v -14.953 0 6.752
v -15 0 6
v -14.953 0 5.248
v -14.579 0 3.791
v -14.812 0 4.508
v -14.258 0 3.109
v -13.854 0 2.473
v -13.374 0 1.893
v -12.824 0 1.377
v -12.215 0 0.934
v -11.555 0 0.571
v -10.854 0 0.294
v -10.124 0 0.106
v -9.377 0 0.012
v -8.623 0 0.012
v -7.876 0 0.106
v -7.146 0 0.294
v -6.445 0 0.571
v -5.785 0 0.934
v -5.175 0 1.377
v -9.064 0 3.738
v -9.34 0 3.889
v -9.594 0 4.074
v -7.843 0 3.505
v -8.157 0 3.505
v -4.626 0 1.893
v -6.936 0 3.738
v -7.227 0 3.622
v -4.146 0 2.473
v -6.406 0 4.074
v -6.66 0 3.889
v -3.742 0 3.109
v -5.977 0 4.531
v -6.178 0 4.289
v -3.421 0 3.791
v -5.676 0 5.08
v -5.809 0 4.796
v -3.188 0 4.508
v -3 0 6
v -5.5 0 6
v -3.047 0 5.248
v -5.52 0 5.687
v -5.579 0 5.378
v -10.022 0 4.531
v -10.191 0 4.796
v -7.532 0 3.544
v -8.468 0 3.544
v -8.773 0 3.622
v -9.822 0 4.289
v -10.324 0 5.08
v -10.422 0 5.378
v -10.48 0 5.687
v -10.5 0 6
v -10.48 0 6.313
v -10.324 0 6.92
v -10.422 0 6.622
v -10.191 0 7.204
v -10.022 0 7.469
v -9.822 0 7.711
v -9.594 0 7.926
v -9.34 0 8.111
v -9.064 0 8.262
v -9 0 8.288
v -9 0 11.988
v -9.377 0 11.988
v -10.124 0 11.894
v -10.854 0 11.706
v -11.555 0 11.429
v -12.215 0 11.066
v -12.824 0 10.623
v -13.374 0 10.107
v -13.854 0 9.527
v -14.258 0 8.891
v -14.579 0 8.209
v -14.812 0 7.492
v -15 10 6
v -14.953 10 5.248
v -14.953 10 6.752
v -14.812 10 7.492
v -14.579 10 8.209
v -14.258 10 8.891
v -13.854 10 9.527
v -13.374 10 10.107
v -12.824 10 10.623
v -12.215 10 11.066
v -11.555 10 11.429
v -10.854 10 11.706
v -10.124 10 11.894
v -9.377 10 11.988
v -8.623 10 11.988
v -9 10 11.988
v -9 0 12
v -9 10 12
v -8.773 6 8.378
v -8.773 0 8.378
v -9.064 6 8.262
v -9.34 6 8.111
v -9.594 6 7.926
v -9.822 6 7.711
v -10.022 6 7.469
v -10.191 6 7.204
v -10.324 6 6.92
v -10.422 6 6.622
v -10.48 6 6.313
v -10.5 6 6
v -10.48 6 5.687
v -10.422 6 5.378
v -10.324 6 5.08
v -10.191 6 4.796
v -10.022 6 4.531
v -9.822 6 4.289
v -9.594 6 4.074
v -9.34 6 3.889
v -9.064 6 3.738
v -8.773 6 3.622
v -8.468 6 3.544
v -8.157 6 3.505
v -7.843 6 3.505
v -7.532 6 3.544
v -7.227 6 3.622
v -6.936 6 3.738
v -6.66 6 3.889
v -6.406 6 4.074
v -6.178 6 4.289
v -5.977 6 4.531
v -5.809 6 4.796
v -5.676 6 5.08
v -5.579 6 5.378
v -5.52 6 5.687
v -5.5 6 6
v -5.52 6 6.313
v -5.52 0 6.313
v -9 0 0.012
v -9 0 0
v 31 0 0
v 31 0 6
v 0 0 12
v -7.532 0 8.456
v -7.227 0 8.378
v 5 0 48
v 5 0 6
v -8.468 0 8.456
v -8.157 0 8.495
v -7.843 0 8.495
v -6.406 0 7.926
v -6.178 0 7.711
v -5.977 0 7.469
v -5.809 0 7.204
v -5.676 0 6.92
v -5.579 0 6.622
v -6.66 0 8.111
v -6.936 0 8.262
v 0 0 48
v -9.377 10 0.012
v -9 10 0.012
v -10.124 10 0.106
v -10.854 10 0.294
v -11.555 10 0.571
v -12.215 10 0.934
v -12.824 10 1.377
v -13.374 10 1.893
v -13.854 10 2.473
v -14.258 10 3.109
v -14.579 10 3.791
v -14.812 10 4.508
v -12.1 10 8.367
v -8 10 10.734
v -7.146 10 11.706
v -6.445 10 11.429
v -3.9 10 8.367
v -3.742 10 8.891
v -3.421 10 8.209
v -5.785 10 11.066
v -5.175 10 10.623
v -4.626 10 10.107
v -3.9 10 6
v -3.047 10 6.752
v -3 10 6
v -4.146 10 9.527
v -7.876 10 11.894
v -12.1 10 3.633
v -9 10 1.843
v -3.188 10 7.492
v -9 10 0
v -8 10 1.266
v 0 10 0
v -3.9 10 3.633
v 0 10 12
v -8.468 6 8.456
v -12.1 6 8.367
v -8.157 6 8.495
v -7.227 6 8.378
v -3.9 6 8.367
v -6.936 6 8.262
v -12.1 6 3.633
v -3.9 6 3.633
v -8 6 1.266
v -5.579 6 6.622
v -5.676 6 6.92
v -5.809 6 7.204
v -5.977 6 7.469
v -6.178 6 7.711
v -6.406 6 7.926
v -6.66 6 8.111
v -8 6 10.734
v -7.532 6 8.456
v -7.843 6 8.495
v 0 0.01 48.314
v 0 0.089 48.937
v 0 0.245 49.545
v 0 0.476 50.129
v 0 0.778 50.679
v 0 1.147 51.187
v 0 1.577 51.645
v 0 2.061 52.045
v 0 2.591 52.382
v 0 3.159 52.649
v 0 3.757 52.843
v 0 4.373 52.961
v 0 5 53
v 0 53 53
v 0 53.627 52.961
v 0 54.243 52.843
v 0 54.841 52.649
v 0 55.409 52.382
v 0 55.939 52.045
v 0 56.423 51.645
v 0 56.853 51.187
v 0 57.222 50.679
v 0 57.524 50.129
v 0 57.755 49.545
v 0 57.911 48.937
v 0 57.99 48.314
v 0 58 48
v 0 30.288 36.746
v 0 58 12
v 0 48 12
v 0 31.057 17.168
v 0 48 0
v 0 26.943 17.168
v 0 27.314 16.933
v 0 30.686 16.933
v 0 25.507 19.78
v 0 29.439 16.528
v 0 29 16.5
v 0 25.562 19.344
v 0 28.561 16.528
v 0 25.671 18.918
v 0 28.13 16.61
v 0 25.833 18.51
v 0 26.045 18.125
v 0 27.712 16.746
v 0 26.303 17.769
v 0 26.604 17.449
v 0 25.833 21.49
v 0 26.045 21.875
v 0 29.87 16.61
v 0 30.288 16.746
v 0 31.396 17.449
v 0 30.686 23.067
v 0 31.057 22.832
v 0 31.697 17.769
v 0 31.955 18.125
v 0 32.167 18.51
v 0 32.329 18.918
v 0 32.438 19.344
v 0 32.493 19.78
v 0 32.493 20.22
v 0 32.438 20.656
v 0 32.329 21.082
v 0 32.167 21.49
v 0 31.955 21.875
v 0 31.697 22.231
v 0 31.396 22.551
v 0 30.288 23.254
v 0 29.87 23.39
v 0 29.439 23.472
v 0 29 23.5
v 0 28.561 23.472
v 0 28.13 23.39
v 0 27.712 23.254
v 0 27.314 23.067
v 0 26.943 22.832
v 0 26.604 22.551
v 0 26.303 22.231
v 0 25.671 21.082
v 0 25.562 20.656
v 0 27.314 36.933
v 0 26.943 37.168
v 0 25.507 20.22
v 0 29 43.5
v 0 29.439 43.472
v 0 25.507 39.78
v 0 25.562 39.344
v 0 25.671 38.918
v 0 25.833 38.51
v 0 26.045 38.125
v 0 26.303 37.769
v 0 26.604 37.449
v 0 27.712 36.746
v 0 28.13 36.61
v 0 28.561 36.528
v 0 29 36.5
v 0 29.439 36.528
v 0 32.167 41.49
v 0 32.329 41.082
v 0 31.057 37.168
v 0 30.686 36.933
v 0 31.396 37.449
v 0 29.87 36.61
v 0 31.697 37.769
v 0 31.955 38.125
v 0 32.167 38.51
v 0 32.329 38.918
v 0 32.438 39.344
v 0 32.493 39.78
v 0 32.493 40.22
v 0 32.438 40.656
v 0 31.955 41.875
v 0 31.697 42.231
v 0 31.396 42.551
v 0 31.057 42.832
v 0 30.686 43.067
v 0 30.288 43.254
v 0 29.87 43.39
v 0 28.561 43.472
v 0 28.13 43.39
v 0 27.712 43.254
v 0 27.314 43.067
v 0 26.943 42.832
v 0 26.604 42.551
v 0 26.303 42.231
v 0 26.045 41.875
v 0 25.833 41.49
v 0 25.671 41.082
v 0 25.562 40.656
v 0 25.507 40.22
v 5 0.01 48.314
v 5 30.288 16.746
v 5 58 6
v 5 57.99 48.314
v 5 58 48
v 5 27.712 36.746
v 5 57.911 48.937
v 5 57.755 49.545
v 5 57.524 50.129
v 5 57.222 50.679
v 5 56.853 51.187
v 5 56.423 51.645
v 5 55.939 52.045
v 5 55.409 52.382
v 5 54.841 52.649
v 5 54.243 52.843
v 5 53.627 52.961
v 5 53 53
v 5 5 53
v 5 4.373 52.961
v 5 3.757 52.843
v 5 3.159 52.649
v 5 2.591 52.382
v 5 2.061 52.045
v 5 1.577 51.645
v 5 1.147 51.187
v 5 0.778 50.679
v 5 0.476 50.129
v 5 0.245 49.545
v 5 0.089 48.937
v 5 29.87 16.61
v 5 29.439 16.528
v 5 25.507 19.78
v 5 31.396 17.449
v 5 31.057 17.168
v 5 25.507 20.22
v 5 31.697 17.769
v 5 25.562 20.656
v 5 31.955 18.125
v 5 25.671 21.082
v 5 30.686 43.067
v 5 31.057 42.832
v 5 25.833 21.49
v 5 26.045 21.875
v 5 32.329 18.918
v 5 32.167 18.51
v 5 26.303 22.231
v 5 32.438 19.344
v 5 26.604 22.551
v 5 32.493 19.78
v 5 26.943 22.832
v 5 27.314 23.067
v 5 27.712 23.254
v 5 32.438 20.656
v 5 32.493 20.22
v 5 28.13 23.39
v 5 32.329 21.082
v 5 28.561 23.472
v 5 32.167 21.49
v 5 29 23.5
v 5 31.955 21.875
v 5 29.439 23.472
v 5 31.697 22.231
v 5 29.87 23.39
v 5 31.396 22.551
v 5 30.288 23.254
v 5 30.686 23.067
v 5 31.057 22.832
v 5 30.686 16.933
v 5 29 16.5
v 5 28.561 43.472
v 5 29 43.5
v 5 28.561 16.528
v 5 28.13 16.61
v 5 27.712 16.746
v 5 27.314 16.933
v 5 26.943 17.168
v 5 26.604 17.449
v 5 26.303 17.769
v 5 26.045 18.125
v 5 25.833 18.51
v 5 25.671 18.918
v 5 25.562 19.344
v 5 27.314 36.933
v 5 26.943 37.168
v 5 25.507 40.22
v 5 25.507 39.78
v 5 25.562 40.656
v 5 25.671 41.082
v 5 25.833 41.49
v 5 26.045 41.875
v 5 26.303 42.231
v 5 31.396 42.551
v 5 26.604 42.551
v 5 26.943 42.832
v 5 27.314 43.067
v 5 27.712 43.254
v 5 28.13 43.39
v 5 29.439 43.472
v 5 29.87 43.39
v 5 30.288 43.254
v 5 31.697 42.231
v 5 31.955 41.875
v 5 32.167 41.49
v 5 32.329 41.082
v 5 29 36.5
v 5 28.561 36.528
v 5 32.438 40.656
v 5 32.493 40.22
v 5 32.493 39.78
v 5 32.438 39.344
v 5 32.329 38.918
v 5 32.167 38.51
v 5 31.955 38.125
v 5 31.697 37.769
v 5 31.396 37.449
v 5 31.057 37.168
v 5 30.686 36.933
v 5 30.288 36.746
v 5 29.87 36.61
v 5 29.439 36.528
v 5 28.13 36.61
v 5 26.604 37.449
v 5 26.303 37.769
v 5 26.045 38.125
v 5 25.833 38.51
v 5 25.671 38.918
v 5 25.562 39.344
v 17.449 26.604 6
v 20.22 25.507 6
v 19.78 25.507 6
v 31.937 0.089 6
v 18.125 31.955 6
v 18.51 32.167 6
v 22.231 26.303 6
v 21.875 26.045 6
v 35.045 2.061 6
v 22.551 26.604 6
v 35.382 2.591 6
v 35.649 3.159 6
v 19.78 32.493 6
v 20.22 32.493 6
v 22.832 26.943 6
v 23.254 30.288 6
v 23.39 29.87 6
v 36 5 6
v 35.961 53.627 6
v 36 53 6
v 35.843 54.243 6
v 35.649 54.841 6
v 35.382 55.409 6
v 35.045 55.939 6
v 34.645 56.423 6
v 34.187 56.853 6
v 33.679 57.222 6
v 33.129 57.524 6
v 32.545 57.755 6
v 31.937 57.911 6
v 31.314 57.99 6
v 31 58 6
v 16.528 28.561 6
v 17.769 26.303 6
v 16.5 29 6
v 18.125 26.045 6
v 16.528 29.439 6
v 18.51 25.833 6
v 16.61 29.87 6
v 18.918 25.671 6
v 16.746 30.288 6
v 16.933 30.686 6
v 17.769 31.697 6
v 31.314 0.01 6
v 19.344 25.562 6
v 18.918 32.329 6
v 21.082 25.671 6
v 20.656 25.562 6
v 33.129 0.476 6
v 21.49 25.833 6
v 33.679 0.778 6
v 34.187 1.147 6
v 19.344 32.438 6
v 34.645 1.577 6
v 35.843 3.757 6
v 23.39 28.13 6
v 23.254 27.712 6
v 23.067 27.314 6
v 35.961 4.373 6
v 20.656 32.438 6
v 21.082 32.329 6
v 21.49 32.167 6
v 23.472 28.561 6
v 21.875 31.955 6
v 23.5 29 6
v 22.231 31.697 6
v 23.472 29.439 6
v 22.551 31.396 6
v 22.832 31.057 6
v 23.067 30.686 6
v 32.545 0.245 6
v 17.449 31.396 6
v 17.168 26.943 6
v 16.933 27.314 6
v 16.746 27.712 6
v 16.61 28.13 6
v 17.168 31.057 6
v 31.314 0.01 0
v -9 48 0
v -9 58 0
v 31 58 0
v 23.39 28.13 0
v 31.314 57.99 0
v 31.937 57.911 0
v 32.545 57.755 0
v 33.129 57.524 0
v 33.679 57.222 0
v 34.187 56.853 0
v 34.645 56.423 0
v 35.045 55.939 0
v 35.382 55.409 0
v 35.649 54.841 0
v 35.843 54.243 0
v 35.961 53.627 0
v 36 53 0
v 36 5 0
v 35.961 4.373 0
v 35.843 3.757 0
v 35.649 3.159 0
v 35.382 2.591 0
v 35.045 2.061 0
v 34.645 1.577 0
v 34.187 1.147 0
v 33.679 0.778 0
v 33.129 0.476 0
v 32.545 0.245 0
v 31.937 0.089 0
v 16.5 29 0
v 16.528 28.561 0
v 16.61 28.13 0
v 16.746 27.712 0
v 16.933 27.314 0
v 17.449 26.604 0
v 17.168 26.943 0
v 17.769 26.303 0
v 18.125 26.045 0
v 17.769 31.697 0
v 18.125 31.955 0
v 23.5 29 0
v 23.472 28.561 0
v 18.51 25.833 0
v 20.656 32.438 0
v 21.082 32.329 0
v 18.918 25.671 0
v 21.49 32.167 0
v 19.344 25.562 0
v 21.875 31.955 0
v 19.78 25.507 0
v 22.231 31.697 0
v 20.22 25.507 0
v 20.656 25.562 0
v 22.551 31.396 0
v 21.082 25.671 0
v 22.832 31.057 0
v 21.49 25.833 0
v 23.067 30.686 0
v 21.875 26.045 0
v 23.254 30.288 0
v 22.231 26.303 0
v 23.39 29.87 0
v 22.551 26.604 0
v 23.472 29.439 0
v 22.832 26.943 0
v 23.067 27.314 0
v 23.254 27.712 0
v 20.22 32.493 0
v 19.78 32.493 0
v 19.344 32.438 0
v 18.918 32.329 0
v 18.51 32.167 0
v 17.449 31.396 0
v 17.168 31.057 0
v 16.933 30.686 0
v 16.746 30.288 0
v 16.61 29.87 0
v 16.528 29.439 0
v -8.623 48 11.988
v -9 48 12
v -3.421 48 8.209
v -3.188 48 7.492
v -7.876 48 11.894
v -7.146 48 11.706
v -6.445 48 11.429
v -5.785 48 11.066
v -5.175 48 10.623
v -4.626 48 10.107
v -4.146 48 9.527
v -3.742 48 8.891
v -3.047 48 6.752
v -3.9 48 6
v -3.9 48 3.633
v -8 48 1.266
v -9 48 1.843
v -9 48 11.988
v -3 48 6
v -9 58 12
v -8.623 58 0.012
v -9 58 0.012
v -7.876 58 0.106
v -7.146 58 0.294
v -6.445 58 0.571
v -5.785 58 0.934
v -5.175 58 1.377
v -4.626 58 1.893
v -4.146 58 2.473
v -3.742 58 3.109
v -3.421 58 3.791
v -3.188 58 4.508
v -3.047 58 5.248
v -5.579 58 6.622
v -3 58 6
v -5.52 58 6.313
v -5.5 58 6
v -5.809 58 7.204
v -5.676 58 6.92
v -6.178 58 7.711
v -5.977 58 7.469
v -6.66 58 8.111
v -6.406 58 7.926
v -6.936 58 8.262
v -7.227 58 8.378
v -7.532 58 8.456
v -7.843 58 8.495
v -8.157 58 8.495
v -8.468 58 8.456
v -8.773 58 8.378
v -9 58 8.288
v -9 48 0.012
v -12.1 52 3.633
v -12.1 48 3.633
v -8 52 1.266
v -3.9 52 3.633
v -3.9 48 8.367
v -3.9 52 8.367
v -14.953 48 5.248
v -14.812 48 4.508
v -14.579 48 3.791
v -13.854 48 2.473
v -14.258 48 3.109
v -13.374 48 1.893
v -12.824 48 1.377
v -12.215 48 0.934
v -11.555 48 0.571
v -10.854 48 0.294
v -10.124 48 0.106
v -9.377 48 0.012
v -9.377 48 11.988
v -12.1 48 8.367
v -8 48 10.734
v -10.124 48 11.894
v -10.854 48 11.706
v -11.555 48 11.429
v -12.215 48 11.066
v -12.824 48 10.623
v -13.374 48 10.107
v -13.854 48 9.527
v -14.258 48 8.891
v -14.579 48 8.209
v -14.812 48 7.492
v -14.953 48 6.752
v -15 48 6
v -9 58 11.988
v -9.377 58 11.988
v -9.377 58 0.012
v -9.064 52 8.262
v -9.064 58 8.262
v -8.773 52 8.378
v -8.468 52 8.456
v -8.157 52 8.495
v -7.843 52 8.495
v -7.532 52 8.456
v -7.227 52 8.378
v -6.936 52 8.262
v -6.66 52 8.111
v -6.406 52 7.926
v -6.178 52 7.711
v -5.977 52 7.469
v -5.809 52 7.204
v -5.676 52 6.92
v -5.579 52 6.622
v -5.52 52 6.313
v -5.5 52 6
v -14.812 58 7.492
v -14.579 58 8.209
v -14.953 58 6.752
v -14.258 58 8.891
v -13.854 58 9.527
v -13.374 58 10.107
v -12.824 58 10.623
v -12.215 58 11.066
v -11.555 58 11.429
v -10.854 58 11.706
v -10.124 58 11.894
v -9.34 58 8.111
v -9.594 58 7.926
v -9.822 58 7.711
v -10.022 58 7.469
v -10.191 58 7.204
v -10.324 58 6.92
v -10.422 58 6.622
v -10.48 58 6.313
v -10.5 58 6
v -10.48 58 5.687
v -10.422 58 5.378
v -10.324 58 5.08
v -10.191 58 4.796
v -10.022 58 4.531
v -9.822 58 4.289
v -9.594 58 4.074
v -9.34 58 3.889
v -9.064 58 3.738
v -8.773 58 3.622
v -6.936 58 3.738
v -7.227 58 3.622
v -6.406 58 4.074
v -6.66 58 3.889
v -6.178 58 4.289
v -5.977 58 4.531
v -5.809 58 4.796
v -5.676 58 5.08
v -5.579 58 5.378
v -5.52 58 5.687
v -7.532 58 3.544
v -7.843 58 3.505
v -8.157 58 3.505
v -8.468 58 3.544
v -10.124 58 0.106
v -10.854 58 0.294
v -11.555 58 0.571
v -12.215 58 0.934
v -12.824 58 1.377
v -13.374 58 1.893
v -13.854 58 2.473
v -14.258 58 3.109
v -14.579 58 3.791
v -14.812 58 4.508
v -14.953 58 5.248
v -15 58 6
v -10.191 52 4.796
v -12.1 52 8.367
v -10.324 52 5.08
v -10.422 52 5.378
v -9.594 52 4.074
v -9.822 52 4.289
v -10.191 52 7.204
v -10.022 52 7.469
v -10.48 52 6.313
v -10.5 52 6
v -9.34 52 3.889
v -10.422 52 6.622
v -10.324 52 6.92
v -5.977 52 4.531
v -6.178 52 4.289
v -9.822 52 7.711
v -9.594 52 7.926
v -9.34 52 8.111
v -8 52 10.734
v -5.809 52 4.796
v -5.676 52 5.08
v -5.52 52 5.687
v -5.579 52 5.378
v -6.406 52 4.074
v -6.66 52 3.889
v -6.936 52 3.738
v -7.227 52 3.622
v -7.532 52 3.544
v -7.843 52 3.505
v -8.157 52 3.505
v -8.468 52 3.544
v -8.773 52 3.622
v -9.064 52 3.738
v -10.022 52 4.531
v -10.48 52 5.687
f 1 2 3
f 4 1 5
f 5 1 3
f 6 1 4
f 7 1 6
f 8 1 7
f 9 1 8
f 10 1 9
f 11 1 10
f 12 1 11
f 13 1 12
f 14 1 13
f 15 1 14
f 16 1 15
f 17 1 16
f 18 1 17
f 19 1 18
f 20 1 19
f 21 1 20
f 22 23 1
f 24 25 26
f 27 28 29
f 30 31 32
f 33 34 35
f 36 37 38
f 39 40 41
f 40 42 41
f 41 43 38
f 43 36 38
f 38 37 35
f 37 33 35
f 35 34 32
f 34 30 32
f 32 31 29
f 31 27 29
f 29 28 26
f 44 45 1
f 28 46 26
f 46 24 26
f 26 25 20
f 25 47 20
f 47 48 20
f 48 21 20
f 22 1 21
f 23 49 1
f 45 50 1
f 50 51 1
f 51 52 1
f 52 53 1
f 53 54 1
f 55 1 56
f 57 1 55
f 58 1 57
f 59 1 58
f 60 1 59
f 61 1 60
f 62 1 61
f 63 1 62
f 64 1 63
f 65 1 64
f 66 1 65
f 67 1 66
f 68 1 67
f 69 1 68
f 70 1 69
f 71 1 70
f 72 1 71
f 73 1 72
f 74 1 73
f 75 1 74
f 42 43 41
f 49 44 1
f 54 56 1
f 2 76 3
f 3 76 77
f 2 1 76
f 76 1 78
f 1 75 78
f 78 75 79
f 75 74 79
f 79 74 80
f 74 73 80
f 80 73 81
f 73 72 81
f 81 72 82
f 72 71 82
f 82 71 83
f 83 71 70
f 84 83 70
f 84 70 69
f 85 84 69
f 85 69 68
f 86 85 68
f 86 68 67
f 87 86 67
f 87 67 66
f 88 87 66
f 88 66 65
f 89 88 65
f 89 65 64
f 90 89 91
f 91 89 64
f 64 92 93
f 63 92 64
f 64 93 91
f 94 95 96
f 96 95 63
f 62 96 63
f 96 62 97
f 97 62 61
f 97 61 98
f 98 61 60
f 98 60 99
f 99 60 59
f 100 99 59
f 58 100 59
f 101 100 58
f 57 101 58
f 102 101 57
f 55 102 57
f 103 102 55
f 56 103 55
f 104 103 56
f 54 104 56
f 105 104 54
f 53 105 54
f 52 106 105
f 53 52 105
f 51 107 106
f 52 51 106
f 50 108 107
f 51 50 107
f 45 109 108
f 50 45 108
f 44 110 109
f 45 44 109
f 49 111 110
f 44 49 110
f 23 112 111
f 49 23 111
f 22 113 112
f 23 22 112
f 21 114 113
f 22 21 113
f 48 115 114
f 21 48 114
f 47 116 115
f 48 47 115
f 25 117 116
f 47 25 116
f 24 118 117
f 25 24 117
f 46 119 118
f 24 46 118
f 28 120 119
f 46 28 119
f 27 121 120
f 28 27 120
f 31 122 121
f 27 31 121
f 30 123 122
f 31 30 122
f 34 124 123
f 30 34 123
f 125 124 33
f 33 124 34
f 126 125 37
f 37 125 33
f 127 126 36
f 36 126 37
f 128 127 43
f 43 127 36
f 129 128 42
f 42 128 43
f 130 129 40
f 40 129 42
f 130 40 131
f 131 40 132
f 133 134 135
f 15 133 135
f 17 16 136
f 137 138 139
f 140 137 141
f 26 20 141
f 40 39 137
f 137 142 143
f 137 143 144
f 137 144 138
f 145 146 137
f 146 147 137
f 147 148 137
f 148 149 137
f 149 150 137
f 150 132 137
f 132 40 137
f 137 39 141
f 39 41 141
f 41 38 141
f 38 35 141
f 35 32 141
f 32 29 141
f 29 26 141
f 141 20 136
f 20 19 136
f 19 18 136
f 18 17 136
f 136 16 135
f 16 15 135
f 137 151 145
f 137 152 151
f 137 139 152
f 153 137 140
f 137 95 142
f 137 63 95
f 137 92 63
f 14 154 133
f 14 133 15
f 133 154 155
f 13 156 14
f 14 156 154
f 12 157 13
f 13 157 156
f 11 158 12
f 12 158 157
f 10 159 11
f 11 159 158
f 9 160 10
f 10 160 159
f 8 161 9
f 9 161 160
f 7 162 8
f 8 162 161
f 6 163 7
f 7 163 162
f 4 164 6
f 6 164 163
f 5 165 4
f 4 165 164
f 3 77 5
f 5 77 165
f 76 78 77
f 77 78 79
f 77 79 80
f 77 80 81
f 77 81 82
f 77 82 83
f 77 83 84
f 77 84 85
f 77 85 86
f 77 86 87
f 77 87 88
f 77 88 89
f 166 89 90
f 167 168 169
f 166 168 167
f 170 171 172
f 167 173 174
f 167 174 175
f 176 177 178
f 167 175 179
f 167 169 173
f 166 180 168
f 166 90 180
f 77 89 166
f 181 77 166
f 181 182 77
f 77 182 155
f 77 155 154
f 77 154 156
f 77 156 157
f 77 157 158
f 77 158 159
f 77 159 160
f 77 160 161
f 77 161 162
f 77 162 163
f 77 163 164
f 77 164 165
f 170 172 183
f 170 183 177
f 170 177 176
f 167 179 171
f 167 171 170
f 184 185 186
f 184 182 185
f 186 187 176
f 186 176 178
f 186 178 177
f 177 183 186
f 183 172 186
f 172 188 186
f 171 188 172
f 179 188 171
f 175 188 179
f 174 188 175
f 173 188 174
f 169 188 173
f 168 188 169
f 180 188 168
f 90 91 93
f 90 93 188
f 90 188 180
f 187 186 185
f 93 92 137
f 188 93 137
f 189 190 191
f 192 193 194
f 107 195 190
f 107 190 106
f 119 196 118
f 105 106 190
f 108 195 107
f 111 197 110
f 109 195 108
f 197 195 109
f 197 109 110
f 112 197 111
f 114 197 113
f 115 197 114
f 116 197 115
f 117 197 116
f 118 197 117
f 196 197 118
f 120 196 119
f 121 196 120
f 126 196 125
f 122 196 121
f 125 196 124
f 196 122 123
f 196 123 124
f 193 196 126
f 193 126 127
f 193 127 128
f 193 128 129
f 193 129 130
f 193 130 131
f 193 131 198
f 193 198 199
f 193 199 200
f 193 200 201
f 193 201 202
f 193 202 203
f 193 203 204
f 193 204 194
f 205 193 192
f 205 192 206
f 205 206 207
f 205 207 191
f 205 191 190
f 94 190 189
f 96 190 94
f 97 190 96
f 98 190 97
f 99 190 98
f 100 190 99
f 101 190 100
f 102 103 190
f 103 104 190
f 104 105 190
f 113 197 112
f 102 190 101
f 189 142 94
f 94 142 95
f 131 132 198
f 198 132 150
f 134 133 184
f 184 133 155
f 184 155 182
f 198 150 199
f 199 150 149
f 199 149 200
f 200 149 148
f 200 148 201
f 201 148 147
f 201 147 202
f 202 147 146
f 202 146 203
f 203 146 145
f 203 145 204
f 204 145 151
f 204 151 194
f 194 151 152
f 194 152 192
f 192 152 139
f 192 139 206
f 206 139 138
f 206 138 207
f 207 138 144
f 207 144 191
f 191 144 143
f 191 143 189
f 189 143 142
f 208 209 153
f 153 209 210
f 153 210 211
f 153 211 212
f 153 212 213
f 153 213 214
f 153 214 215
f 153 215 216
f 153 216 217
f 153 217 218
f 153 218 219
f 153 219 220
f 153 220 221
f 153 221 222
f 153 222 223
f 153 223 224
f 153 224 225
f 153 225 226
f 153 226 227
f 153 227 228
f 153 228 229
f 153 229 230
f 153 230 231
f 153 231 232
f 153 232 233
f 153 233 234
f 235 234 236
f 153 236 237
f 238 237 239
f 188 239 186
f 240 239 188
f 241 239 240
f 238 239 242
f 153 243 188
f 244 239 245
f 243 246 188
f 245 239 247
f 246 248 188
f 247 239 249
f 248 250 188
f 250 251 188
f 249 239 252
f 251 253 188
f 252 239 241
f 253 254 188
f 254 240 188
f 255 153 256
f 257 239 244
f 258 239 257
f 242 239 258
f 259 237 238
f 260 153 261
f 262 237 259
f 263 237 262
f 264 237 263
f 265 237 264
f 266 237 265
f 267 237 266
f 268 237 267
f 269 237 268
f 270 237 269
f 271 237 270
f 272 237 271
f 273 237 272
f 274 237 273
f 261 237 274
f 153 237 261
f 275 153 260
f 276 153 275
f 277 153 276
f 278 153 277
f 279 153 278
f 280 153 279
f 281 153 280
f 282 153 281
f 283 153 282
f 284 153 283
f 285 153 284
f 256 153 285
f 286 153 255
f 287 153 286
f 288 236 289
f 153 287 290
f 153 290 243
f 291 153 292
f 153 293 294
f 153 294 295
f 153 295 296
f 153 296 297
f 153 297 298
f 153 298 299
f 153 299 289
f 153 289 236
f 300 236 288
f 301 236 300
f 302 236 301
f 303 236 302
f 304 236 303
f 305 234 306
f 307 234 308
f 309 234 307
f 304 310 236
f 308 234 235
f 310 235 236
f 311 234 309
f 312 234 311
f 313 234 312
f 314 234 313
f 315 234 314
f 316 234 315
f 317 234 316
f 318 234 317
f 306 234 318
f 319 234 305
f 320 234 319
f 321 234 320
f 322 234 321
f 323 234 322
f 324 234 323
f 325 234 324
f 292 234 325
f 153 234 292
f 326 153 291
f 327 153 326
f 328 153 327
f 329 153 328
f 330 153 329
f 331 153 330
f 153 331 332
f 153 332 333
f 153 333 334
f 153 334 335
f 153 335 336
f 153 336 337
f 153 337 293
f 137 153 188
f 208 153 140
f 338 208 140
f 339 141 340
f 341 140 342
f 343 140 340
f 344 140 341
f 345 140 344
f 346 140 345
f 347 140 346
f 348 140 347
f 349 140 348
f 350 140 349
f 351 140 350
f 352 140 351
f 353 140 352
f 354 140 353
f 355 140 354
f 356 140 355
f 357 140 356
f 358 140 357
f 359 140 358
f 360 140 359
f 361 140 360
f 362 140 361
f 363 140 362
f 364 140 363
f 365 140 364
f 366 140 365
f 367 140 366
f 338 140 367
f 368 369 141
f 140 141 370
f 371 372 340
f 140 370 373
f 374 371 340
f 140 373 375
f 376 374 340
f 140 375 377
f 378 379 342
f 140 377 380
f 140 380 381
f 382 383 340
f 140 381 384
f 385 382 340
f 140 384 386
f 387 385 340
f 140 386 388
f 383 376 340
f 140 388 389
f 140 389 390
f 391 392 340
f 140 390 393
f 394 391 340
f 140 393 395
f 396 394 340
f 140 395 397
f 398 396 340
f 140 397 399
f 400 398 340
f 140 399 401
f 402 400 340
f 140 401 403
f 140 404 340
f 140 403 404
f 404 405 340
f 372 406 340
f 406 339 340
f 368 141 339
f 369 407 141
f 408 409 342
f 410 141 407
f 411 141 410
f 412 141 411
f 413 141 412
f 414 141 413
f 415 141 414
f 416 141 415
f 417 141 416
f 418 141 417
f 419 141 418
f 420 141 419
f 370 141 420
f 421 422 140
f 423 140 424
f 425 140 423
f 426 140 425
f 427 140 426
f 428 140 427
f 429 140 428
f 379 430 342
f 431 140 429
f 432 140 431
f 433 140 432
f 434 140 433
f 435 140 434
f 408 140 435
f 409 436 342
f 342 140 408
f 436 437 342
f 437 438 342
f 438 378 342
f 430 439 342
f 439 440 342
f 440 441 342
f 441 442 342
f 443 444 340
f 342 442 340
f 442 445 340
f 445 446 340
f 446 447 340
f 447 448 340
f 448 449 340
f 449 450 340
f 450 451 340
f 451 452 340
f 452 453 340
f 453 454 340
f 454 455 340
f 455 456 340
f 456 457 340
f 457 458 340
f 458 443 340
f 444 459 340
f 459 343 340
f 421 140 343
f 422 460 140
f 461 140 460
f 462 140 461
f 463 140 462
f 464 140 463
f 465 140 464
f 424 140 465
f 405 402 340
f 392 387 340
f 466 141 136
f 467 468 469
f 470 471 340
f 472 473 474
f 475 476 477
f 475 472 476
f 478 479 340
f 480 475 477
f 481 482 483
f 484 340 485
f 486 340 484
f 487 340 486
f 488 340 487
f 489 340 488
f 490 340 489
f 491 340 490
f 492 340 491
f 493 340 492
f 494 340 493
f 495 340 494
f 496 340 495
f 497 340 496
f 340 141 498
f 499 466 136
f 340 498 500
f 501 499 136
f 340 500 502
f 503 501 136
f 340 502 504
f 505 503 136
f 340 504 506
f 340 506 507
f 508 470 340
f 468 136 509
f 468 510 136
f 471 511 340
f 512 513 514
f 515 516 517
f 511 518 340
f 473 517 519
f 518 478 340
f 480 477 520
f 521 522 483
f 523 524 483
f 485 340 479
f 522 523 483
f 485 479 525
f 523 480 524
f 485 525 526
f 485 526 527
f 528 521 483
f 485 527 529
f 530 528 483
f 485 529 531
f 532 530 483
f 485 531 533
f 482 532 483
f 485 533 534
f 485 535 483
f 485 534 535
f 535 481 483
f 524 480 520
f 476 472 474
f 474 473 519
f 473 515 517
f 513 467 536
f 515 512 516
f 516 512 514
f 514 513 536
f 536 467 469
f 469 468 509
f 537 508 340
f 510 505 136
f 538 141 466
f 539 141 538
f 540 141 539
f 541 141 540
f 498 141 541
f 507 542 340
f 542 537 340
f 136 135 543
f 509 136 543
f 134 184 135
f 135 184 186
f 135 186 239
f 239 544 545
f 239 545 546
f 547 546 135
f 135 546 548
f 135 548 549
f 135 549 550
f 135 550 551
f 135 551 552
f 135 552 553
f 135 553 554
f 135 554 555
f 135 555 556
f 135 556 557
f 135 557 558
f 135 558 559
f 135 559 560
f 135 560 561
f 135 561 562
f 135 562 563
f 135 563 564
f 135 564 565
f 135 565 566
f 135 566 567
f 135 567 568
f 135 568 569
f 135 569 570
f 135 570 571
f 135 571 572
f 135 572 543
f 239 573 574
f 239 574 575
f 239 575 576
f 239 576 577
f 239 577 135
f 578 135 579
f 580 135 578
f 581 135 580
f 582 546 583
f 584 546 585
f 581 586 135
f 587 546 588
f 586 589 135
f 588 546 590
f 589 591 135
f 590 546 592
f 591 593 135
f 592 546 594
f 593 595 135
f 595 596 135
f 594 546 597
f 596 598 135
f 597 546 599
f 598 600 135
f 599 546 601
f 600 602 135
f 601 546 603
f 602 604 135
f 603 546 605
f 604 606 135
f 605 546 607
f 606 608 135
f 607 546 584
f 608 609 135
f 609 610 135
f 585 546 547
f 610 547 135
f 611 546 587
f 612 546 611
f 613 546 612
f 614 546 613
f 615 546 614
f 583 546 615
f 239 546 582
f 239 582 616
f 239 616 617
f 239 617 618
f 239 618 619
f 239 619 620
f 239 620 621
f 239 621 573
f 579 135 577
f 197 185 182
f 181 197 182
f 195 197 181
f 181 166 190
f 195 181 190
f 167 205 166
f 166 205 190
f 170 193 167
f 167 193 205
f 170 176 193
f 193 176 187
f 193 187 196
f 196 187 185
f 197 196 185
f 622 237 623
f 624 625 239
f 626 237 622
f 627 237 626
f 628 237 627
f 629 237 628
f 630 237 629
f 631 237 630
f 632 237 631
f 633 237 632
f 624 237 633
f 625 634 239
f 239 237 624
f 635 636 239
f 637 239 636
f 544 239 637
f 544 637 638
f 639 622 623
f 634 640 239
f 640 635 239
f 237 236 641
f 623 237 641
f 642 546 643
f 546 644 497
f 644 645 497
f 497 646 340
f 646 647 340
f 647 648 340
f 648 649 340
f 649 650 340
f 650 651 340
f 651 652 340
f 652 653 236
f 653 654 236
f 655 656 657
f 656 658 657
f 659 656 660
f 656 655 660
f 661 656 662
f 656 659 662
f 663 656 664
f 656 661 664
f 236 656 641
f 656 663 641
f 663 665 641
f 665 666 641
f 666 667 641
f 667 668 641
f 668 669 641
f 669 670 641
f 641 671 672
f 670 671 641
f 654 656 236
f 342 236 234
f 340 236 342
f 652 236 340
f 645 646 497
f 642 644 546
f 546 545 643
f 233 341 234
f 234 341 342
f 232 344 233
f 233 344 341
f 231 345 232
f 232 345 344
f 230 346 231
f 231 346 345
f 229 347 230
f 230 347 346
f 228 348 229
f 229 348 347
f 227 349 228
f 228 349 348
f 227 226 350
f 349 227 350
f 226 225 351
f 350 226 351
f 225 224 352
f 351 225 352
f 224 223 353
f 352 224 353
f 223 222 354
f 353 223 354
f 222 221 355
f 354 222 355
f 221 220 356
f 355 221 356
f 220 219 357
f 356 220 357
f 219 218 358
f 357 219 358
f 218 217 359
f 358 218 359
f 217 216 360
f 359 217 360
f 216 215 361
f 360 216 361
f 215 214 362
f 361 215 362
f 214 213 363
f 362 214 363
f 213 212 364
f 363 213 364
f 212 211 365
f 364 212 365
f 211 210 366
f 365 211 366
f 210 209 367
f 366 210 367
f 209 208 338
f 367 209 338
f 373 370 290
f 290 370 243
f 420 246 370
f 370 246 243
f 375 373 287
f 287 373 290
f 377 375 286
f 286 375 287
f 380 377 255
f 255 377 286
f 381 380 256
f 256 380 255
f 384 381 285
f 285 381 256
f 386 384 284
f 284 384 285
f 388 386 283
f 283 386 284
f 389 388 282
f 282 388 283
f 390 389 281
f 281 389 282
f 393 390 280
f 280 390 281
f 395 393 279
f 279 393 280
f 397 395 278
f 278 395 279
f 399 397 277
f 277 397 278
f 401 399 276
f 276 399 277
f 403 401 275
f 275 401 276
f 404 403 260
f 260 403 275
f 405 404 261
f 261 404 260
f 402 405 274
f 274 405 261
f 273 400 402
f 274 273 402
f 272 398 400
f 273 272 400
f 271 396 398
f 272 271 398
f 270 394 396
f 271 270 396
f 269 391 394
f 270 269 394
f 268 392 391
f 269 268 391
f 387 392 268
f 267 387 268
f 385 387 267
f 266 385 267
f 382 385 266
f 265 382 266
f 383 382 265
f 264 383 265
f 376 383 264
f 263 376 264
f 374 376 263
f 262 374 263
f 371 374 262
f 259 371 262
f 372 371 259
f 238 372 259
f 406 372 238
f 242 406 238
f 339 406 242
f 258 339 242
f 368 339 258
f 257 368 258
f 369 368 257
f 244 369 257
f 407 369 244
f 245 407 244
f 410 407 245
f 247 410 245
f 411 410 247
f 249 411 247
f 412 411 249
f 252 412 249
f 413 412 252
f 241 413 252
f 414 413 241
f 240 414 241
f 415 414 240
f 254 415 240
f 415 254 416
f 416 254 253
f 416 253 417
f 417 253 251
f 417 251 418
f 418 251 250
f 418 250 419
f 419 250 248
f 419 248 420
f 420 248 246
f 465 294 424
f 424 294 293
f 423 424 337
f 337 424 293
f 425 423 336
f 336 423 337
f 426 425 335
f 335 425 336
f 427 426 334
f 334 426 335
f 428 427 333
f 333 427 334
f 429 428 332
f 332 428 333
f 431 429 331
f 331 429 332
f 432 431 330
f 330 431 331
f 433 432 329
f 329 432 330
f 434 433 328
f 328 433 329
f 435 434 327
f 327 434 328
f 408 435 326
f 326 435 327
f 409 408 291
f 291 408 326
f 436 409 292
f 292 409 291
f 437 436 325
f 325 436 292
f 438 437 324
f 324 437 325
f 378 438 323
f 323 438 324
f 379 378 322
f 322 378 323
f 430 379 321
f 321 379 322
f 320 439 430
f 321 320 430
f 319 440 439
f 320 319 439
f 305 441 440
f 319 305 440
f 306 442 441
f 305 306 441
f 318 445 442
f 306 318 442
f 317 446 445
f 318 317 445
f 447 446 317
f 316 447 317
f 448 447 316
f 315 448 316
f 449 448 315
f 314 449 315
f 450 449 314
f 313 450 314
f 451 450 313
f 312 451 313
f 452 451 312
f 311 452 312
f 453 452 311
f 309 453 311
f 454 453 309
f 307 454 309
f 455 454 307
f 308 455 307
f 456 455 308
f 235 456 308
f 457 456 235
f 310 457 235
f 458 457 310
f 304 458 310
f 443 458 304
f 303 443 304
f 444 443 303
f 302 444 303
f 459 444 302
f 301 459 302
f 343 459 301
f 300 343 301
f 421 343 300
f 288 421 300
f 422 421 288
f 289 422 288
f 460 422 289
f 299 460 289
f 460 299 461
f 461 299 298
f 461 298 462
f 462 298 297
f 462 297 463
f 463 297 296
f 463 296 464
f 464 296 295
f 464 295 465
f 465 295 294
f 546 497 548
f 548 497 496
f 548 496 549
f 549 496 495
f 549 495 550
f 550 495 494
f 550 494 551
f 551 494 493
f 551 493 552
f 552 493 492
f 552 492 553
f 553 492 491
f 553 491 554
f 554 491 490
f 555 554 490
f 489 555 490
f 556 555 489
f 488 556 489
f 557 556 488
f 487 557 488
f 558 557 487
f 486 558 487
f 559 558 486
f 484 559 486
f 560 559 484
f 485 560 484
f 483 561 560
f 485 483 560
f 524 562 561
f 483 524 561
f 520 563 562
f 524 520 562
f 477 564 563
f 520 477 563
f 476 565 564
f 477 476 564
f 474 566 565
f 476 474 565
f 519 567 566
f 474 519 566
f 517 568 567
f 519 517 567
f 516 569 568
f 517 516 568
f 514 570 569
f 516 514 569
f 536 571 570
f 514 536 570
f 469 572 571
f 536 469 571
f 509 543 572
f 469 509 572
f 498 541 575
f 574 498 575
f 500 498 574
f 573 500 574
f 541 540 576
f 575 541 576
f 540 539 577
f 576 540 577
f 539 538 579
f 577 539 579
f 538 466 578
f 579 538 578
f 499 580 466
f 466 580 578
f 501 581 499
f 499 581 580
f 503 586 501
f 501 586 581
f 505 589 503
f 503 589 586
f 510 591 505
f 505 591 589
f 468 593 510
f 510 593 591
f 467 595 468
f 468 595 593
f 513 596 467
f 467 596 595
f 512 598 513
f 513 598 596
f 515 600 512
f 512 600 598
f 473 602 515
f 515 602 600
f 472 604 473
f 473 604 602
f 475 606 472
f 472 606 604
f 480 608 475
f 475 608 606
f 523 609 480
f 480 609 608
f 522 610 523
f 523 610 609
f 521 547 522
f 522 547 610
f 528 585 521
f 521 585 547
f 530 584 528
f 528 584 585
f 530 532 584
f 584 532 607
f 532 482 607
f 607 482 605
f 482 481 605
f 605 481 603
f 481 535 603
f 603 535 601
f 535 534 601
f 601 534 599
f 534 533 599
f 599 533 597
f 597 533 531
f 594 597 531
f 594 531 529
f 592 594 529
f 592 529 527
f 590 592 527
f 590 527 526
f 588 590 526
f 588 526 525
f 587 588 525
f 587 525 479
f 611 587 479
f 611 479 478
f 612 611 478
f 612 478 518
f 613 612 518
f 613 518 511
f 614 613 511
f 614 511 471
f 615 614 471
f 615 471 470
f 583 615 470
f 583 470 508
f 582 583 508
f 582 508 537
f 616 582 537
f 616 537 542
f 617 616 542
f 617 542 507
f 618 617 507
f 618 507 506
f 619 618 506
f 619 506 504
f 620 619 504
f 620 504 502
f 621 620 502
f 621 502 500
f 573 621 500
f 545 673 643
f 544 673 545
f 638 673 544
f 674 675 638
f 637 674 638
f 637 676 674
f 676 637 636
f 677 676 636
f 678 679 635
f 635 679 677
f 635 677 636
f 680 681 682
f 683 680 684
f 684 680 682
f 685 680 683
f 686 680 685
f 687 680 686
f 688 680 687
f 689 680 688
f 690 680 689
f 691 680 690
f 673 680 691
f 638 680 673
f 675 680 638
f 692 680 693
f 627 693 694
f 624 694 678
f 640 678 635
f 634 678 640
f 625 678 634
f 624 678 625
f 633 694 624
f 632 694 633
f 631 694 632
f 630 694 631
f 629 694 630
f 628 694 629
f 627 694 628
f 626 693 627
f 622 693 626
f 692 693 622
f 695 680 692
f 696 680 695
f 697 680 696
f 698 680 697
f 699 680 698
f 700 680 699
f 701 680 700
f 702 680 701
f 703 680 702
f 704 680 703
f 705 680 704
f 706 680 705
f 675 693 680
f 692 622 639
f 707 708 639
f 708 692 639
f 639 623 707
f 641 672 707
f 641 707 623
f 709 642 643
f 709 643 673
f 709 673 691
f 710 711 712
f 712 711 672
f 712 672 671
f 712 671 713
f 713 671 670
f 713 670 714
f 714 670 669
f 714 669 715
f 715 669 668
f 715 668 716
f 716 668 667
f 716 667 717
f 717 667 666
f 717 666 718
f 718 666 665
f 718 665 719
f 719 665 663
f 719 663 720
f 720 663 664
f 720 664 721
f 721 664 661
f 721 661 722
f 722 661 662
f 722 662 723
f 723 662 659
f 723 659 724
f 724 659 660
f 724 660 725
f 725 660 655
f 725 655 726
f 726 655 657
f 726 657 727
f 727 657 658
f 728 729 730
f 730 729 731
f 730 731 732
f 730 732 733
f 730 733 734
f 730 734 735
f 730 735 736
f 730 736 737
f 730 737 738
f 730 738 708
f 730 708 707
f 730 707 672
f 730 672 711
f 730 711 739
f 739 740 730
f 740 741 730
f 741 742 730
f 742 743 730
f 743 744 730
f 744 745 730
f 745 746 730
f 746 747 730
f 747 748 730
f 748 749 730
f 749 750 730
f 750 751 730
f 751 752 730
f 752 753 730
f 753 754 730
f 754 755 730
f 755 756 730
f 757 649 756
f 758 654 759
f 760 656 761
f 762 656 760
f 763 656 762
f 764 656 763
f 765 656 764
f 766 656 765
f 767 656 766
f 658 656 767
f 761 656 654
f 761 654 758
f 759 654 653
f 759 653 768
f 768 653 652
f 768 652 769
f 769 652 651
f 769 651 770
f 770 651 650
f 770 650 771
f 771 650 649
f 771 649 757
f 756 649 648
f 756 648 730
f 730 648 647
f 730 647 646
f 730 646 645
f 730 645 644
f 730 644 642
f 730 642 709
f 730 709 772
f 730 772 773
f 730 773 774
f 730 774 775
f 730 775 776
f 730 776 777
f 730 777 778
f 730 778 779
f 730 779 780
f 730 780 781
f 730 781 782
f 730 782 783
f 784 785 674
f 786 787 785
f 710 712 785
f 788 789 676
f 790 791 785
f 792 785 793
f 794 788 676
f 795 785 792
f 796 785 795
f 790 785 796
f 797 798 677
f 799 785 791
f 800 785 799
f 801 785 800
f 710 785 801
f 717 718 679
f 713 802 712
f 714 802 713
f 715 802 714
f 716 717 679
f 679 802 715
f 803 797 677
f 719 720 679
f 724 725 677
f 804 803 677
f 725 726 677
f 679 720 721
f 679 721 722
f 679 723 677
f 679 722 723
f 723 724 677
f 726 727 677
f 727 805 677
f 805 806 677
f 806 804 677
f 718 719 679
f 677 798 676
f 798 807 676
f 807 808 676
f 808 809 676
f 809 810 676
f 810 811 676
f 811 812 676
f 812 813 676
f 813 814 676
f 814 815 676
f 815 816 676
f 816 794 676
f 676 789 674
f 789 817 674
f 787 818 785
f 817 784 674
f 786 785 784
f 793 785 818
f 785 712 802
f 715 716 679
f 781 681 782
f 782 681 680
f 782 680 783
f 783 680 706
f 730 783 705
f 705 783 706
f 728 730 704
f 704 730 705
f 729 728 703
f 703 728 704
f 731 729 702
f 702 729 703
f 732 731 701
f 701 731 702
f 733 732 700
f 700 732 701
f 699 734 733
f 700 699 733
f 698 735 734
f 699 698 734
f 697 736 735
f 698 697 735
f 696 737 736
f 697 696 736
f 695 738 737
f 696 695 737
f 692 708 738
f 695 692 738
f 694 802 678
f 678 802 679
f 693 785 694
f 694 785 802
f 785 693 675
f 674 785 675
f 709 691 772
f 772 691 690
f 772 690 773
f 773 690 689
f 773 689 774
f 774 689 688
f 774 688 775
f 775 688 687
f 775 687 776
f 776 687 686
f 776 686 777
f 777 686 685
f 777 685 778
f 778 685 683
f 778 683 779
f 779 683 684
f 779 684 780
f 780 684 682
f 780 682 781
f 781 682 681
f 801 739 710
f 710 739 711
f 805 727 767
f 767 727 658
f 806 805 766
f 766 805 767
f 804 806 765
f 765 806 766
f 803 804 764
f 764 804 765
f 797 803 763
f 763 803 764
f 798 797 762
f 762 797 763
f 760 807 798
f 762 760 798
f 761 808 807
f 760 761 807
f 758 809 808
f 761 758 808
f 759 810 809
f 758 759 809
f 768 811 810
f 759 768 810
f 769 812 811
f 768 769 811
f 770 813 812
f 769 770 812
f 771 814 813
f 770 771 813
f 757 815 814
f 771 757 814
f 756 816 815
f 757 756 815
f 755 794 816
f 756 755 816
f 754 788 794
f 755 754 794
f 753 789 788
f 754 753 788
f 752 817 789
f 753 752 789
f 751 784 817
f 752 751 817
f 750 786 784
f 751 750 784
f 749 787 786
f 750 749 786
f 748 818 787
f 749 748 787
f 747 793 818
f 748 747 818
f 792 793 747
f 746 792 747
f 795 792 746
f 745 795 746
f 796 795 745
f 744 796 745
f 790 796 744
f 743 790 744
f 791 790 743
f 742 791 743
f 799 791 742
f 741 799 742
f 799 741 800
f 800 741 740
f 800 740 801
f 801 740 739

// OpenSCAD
module matice(s,h){
	for(i=[0:1:2]){
		difference(){
			translate([0,0,h/2])
			rotate([0,0,60*i])
			cube([s,tan(30)*s,h],center=true);
		}
	}
}

module drzak(){
	difference(){
	union(){
		translate([-9,0,0])
		cube([9,10,12]);
		translate([-9,10,6])
		rotate([90,0,0])
		cylinder(r1=6,r2=6,h=10);
	}
	translate([-8,11,6])
	rotate([90,0,0])
	matice(8.2,5,6);

	translate([-8,9,6])
	rotate([90,0,0])
	cylinder(r1=2.5,r2=2.5,h=12);
}
}
$fn=50;

difference(){
union(){
	drzak();
	translate([0,58,0])
	mirror([0,1,0]){
	drzak();
	}

// horni stena
	hull(){
	cube([5,58,48]);
	translate([0,5,48])
	rotate([0,90,0])
	cylinder(r1=5,r2=5,h=5);
	translate([0,53,48])
	rotate([0,90,0])
	cylinder(r1=5,r2=5,h=5);
	}
// dolni stena
	hull(){
	cube([31,58,6]);
	translate([31,5,0])
	cylinder(r1=5,r2=5,h=6);
	translate([31,53,0])
	cylinder(r1=5,r2=5,h=6);
	}
}

// dira spodni cast
translate([20,29,0])
cylinder(r1=3.5,r2=3.5,h=11);
// diry horni cast
translate([-1,29,20])
rotate([0,90,0])
cylinder(r1=3.5,r2=3.5,h=11);
translate([-1,29,40])
rotate([0,90,0])
cylinder(r1=3.5,r2=3.5,h=11);
}
